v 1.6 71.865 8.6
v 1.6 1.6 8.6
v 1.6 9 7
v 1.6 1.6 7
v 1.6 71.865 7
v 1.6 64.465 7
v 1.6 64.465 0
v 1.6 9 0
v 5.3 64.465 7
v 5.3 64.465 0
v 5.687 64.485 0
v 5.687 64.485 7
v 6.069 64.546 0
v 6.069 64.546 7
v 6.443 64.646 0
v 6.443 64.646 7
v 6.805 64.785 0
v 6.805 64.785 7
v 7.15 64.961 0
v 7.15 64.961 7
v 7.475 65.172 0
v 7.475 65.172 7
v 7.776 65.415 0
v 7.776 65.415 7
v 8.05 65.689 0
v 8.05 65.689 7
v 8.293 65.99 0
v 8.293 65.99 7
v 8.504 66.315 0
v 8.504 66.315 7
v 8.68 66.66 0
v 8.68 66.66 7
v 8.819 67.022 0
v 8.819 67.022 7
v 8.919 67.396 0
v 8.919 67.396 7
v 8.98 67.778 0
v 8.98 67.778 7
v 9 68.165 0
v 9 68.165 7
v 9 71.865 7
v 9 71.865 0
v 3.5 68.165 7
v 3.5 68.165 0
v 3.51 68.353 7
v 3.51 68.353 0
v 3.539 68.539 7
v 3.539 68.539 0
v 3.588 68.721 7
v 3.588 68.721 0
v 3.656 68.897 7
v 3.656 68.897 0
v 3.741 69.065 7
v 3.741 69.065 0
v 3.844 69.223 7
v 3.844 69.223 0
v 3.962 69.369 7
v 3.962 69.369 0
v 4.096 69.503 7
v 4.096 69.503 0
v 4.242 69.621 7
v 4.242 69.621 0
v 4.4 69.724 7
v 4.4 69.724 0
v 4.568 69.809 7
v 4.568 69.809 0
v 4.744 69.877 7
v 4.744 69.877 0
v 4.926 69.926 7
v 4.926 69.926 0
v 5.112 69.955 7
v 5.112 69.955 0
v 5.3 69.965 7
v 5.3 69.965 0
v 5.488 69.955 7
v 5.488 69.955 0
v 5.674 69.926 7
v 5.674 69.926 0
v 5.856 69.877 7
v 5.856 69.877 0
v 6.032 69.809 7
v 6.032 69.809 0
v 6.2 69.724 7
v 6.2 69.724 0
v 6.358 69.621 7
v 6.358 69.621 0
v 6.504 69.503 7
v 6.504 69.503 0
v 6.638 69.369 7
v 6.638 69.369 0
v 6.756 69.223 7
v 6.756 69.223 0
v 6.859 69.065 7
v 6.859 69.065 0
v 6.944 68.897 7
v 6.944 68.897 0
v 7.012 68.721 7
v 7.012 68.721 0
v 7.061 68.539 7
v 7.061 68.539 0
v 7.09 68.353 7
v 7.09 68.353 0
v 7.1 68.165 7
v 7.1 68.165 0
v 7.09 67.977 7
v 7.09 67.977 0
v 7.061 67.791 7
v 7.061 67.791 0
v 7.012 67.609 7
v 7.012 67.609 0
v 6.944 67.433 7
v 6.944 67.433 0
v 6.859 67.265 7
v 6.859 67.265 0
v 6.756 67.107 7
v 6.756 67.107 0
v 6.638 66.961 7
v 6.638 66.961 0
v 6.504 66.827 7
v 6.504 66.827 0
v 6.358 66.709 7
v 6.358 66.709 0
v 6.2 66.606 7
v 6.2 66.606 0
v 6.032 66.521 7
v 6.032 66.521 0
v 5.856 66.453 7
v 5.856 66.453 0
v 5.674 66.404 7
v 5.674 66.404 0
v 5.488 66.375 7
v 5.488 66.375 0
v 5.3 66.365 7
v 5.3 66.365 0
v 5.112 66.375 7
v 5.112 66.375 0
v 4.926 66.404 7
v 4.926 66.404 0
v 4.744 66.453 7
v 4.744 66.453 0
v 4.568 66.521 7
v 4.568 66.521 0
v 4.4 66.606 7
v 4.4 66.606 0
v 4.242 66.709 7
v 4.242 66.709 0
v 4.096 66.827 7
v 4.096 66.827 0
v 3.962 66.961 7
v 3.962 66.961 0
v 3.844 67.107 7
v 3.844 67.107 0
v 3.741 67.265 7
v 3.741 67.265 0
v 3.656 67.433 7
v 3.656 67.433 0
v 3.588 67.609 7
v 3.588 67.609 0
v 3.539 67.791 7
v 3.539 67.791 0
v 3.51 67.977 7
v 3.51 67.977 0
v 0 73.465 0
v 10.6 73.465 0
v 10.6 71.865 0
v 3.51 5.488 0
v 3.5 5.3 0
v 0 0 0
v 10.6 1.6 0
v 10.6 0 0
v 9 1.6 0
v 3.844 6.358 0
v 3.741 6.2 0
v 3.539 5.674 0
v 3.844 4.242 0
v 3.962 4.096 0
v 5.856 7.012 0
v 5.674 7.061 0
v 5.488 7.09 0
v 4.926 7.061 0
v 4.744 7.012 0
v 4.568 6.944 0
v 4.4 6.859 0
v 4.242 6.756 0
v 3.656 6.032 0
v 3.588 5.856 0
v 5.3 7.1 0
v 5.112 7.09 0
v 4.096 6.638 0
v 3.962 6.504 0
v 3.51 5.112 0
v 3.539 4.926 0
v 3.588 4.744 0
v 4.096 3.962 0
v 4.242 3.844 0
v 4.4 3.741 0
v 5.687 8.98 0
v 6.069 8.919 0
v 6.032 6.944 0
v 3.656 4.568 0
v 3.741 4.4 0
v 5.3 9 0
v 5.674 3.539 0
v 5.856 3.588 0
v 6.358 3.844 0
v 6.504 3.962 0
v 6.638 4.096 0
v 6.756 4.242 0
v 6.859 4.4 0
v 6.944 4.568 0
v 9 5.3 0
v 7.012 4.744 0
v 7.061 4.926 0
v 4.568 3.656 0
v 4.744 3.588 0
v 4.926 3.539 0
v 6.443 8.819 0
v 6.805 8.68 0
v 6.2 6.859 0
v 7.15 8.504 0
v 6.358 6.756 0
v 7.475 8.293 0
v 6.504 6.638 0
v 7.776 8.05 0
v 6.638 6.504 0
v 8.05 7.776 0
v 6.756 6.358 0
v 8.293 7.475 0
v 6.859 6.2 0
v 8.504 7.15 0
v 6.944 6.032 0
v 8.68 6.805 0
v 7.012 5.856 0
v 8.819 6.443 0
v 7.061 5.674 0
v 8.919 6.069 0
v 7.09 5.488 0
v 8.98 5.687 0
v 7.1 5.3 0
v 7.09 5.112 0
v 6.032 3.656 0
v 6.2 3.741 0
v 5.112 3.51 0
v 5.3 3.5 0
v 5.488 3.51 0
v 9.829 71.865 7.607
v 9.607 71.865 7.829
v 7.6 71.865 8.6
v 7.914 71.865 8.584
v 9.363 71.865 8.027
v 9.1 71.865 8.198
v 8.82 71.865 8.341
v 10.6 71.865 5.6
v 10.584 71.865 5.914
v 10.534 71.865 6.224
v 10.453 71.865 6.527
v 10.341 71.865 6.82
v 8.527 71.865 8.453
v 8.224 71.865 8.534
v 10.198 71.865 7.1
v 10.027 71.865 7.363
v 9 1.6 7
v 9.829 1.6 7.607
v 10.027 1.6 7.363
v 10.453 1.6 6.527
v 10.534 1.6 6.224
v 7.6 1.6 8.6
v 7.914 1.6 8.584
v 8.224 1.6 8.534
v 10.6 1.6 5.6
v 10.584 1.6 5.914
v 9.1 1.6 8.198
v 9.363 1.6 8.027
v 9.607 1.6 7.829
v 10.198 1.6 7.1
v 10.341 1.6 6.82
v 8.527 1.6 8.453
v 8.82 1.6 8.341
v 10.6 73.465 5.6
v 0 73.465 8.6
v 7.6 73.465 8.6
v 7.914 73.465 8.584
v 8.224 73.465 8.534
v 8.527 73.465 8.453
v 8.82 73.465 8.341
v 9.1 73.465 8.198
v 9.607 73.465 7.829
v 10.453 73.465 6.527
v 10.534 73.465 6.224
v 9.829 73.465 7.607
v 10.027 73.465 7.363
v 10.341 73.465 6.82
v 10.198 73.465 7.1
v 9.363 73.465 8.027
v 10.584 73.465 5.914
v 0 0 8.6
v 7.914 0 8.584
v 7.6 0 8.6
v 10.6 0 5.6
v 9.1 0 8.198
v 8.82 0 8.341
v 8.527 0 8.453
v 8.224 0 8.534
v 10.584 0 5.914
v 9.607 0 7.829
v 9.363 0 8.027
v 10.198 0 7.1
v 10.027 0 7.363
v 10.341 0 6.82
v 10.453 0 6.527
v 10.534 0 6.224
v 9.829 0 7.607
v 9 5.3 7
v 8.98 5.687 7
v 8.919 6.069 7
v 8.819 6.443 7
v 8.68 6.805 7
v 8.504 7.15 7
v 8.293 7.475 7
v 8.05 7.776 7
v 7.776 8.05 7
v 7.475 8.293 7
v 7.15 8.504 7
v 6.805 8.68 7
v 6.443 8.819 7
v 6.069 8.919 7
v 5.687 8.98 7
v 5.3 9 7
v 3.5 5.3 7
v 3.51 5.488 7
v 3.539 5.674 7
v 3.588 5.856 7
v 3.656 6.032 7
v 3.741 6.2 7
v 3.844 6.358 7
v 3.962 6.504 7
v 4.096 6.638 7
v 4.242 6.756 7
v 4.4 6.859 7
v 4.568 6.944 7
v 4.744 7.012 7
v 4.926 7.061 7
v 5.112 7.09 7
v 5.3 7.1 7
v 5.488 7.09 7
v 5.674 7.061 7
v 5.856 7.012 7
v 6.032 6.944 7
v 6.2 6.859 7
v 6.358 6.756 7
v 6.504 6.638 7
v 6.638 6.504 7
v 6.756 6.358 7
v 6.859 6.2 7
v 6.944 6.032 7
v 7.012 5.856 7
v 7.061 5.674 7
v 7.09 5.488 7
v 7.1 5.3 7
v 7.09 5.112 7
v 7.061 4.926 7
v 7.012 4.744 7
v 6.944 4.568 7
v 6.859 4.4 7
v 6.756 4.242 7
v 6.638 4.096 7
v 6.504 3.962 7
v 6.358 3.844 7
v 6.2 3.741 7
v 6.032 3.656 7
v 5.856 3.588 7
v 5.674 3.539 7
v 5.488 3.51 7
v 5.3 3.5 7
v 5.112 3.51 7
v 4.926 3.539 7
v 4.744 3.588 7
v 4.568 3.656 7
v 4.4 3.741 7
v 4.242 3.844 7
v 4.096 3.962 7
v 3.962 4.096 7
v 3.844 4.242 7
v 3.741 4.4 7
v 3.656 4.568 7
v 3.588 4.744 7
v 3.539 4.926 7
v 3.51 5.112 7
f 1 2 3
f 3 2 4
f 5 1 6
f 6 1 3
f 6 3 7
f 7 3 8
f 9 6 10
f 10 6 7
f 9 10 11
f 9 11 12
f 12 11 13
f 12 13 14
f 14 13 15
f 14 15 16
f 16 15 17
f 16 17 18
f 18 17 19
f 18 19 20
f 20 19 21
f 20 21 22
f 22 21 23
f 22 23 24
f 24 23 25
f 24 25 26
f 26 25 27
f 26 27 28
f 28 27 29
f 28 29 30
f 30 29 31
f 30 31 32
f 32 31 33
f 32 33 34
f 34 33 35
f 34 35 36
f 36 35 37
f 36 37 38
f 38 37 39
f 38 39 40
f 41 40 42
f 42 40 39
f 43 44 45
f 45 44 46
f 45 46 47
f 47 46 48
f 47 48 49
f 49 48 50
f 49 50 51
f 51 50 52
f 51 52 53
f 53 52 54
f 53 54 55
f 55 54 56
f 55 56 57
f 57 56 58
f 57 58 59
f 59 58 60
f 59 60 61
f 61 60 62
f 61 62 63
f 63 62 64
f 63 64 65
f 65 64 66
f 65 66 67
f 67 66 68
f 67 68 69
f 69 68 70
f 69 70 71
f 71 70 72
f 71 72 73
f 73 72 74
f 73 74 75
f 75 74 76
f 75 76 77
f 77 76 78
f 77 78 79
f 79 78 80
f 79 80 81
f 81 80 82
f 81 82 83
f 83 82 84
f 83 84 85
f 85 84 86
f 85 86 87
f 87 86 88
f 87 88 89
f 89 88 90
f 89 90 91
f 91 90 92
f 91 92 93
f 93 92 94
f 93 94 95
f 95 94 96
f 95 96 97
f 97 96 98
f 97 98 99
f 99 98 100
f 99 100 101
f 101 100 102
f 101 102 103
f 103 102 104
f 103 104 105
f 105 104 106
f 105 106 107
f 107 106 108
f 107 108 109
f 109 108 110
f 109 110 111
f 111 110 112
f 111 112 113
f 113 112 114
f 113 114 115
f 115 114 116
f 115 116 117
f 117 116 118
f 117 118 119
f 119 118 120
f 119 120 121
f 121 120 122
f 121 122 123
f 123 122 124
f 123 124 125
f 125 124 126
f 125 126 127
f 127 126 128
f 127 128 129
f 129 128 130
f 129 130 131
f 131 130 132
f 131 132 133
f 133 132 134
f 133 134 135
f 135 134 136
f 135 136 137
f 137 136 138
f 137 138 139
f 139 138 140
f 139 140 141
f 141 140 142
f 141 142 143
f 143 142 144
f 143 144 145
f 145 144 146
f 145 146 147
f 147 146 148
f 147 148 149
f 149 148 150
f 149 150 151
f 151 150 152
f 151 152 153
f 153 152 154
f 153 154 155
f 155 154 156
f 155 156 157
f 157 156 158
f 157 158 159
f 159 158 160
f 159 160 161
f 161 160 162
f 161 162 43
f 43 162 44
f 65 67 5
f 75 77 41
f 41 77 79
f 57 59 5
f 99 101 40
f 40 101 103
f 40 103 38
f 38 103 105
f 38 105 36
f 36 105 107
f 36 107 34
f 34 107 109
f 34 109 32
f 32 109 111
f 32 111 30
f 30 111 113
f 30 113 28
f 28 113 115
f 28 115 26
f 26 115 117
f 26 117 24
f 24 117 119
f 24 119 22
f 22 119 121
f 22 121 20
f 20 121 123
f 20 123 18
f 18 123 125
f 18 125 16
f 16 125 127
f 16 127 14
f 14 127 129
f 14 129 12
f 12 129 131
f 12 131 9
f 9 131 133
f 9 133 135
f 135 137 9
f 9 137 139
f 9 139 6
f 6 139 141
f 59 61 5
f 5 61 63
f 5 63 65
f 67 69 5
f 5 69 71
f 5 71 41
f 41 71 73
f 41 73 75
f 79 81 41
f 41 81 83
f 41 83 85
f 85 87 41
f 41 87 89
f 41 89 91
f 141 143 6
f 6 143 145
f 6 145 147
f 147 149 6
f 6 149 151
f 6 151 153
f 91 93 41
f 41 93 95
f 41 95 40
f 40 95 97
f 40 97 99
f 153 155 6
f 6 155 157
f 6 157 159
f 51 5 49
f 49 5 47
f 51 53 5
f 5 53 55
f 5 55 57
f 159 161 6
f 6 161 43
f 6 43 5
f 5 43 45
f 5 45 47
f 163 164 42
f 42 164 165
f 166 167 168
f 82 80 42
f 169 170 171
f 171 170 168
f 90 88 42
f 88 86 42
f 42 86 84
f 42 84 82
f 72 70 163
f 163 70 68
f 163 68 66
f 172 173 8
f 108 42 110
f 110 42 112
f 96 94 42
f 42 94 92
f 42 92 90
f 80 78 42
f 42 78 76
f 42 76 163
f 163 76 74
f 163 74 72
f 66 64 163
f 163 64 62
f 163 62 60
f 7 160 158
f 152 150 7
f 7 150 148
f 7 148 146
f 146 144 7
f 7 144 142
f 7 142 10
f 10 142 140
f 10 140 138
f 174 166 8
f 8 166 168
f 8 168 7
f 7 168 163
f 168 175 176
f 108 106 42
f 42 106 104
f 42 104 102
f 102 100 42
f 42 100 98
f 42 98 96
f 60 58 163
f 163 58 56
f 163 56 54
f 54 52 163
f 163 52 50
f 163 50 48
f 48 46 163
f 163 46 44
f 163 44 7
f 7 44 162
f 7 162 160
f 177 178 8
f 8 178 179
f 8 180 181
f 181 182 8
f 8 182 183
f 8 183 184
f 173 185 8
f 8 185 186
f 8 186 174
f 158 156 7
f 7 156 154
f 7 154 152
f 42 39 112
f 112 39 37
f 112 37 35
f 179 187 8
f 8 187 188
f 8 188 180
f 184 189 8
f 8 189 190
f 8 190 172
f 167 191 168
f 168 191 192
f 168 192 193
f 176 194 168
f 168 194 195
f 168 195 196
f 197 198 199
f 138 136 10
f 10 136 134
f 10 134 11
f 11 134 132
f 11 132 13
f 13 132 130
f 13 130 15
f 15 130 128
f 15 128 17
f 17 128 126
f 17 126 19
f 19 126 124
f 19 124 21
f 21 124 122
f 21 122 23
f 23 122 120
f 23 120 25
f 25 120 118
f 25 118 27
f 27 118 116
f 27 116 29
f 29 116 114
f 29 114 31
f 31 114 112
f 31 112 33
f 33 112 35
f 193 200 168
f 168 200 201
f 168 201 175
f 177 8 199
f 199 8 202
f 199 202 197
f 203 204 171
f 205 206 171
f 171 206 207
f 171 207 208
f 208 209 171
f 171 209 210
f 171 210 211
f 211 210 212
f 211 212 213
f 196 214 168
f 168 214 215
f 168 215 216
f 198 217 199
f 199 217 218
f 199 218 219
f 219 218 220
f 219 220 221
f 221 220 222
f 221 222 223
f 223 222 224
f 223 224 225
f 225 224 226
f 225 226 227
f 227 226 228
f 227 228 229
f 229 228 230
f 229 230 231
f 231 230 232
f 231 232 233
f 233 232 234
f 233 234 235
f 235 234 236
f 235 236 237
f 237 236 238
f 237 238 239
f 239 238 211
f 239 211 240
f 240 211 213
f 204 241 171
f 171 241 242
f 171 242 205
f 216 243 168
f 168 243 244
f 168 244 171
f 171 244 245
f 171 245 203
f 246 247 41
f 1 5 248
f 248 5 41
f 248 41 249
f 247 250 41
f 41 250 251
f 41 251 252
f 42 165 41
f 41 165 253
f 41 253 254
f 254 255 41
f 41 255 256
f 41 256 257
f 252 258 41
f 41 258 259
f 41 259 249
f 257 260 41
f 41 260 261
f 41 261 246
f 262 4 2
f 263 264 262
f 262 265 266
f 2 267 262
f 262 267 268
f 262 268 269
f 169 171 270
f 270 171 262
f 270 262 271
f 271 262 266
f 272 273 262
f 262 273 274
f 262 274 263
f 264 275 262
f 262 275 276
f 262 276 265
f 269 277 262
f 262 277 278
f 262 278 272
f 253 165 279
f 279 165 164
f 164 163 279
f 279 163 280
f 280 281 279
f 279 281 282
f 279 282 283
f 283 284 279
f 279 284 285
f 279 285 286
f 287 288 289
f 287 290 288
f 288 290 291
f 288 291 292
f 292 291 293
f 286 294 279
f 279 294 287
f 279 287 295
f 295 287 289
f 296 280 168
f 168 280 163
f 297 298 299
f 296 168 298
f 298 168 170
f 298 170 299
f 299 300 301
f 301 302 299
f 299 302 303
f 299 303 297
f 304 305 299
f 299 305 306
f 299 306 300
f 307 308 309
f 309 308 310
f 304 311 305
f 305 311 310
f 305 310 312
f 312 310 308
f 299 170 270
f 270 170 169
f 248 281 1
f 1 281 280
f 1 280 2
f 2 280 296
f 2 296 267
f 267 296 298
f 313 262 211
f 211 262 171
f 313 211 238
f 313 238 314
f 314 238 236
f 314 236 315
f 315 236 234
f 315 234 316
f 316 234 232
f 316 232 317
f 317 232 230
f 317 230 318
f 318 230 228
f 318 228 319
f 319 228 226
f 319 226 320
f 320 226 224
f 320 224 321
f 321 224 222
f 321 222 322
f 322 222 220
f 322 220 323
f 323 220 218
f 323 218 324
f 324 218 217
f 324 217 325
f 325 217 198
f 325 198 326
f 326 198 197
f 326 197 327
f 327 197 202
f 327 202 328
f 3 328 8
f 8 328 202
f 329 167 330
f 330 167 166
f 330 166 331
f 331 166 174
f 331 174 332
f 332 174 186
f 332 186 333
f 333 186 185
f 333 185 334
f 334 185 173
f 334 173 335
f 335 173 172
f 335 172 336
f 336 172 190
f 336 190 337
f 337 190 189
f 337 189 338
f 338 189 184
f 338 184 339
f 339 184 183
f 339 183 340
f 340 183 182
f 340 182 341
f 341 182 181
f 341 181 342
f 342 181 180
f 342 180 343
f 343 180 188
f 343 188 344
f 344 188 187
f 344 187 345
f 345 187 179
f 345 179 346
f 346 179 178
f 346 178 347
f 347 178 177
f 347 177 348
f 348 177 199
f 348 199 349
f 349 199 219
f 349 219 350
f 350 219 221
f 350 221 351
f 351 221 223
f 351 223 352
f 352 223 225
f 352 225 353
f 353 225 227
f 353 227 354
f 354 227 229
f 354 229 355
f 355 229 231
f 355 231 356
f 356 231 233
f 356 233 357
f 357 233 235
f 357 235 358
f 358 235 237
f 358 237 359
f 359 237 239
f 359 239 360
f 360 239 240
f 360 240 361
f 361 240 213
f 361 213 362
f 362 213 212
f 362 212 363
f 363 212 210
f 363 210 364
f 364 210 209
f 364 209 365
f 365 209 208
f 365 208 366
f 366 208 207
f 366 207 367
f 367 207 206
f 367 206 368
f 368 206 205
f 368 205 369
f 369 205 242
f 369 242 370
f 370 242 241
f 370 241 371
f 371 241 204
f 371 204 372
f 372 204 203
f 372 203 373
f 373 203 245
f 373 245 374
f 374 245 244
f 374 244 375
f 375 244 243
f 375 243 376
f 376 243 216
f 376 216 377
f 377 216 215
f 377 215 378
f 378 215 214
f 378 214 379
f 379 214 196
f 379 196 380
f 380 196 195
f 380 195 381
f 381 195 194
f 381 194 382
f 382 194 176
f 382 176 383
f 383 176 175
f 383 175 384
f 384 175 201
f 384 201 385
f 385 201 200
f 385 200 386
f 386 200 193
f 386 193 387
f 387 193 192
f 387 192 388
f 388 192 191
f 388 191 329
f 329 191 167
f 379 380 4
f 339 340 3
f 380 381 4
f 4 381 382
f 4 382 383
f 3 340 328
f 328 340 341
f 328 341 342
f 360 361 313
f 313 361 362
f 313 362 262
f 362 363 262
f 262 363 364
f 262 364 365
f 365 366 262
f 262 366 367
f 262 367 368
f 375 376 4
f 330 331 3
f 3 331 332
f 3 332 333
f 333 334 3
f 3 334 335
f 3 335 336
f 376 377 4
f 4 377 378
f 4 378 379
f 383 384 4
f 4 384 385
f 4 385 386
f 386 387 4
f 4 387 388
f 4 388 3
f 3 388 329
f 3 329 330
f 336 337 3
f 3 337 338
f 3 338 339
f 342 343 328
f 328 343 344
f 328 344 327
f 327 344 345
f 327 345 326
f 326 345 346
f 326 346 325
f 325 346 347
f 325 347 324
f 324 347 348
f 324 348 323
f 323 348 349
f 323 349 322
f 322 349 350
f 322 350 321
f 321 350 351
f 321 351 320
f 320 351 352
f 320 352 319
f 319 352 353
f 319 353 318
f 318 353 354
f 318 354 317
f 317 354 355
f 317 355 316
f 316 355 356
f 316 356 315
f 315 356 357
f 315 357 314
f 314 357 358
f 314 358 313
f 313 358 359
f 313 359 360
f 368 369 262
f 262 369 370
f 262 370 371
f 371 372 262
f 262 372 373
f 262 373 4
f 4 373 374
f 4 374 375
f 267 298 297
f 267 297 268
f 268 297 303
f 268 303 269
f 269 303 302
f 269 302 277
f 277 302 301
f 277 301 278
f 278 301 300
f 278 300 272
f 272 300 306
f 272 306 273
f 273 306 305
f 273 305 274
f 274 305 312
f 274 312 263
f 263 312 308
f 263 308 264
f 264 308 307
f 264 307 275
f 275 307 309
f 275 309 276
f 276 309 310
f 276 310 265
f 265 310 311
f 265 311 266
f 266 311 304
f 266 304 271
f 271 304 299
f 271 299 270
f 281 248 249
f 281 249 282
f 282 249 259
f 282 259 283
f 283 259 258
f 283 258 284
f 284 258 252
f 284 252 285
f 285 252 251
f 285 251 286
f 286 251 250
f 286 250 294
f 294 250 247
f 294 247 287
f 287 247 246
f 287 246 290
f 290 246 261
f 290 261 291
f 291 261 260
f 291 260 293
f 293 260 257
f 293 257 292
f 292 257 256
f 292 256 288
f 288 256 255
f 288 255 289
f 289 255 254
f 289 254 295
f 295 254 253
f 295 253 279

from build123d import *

# Parameters (mm, degrees)
SKETCH_1_R        = 1.8
EXTRUDE_1_DEPTH   = 7
EXTRUDE_1_2_DEPTH = 7
EXTRUDE_2_DEPTH   = 8.6
FILLET_1_R        = 3


with BuildPart() as part:
    # Эскиз1 → Бобышка-Вытянуть1 (new body)
    with BuildSketch(Plane.XY):
        with BuildLine():
            ThreePointArc((9, 5.3), (7.91629509, 7.91629509), (5.3, 9))
            Line((5.3, 9), (1.6, 9))
            Line((1.6, 9), (1.6, 1.6))
            Line((1.6, 1.6), (9, 1.6))
            Line((9, 1.6), (9, 5.3))
        make_face()
        with Locations((5.3, 5.3)):
            Circle(SKETCH_1_R, mode=Mode.SUBTRACT)
    extrude(amount=EXTRUDE_1_DEPTH)



with BuildPart() as body_2:
    # Эскиз1 → Extrude 1 2 (new body)
    with BuildSketch(Plane.XY):
        with BuildLine():
            Line((1.6, 64.465), (5.3, 64.465))
            ThreePointArc((5.3, 64.465), (7.91629509, 65.54870491), (9, 68.165))
            Line((9, 68.165), (9, 71.865))
            Line((9, 71.865), (1.6, 71.865))
            Line((1.6, 71.865), (1.6, 64.465))
        make_face()
        with Locations((5.3, 68.165)):
            Circle(SKETCH_1_R, mode=Mode.SUBTRACT)
    extrude(amount=EXTRUDE_1_2_DEPTH)


with BuildPart() as part_1:
    add(part.part)

    add(body_2.part)  # Бобышка-Вытянуть2 merges body 2
    # Эскиз1<3> → Бобышка-Вытянуть2 (add)
    with BuildSketch(Plane.XY):
        Polygon((1.6, 71.865), (10.6, 71.865), (10.6, 73.465), (0, 73.465), (0, 0), (10.6, 0), (10.6, 1.6), (1.6, 1.6), align=None)
    extrude(amount=EXTRUDE_2_DEPTH)

    # Скругление1
    fillet_1_edges = [part_1.edges().sort_by_distance(p)[0] for p in [
        (10.6, 0.8, 8.6),
        (10.6, 72.665, 8.6),
    ]]
    fillet(fillet_1_edges, radius=FILLET_1_R)


solid = part_1.part
